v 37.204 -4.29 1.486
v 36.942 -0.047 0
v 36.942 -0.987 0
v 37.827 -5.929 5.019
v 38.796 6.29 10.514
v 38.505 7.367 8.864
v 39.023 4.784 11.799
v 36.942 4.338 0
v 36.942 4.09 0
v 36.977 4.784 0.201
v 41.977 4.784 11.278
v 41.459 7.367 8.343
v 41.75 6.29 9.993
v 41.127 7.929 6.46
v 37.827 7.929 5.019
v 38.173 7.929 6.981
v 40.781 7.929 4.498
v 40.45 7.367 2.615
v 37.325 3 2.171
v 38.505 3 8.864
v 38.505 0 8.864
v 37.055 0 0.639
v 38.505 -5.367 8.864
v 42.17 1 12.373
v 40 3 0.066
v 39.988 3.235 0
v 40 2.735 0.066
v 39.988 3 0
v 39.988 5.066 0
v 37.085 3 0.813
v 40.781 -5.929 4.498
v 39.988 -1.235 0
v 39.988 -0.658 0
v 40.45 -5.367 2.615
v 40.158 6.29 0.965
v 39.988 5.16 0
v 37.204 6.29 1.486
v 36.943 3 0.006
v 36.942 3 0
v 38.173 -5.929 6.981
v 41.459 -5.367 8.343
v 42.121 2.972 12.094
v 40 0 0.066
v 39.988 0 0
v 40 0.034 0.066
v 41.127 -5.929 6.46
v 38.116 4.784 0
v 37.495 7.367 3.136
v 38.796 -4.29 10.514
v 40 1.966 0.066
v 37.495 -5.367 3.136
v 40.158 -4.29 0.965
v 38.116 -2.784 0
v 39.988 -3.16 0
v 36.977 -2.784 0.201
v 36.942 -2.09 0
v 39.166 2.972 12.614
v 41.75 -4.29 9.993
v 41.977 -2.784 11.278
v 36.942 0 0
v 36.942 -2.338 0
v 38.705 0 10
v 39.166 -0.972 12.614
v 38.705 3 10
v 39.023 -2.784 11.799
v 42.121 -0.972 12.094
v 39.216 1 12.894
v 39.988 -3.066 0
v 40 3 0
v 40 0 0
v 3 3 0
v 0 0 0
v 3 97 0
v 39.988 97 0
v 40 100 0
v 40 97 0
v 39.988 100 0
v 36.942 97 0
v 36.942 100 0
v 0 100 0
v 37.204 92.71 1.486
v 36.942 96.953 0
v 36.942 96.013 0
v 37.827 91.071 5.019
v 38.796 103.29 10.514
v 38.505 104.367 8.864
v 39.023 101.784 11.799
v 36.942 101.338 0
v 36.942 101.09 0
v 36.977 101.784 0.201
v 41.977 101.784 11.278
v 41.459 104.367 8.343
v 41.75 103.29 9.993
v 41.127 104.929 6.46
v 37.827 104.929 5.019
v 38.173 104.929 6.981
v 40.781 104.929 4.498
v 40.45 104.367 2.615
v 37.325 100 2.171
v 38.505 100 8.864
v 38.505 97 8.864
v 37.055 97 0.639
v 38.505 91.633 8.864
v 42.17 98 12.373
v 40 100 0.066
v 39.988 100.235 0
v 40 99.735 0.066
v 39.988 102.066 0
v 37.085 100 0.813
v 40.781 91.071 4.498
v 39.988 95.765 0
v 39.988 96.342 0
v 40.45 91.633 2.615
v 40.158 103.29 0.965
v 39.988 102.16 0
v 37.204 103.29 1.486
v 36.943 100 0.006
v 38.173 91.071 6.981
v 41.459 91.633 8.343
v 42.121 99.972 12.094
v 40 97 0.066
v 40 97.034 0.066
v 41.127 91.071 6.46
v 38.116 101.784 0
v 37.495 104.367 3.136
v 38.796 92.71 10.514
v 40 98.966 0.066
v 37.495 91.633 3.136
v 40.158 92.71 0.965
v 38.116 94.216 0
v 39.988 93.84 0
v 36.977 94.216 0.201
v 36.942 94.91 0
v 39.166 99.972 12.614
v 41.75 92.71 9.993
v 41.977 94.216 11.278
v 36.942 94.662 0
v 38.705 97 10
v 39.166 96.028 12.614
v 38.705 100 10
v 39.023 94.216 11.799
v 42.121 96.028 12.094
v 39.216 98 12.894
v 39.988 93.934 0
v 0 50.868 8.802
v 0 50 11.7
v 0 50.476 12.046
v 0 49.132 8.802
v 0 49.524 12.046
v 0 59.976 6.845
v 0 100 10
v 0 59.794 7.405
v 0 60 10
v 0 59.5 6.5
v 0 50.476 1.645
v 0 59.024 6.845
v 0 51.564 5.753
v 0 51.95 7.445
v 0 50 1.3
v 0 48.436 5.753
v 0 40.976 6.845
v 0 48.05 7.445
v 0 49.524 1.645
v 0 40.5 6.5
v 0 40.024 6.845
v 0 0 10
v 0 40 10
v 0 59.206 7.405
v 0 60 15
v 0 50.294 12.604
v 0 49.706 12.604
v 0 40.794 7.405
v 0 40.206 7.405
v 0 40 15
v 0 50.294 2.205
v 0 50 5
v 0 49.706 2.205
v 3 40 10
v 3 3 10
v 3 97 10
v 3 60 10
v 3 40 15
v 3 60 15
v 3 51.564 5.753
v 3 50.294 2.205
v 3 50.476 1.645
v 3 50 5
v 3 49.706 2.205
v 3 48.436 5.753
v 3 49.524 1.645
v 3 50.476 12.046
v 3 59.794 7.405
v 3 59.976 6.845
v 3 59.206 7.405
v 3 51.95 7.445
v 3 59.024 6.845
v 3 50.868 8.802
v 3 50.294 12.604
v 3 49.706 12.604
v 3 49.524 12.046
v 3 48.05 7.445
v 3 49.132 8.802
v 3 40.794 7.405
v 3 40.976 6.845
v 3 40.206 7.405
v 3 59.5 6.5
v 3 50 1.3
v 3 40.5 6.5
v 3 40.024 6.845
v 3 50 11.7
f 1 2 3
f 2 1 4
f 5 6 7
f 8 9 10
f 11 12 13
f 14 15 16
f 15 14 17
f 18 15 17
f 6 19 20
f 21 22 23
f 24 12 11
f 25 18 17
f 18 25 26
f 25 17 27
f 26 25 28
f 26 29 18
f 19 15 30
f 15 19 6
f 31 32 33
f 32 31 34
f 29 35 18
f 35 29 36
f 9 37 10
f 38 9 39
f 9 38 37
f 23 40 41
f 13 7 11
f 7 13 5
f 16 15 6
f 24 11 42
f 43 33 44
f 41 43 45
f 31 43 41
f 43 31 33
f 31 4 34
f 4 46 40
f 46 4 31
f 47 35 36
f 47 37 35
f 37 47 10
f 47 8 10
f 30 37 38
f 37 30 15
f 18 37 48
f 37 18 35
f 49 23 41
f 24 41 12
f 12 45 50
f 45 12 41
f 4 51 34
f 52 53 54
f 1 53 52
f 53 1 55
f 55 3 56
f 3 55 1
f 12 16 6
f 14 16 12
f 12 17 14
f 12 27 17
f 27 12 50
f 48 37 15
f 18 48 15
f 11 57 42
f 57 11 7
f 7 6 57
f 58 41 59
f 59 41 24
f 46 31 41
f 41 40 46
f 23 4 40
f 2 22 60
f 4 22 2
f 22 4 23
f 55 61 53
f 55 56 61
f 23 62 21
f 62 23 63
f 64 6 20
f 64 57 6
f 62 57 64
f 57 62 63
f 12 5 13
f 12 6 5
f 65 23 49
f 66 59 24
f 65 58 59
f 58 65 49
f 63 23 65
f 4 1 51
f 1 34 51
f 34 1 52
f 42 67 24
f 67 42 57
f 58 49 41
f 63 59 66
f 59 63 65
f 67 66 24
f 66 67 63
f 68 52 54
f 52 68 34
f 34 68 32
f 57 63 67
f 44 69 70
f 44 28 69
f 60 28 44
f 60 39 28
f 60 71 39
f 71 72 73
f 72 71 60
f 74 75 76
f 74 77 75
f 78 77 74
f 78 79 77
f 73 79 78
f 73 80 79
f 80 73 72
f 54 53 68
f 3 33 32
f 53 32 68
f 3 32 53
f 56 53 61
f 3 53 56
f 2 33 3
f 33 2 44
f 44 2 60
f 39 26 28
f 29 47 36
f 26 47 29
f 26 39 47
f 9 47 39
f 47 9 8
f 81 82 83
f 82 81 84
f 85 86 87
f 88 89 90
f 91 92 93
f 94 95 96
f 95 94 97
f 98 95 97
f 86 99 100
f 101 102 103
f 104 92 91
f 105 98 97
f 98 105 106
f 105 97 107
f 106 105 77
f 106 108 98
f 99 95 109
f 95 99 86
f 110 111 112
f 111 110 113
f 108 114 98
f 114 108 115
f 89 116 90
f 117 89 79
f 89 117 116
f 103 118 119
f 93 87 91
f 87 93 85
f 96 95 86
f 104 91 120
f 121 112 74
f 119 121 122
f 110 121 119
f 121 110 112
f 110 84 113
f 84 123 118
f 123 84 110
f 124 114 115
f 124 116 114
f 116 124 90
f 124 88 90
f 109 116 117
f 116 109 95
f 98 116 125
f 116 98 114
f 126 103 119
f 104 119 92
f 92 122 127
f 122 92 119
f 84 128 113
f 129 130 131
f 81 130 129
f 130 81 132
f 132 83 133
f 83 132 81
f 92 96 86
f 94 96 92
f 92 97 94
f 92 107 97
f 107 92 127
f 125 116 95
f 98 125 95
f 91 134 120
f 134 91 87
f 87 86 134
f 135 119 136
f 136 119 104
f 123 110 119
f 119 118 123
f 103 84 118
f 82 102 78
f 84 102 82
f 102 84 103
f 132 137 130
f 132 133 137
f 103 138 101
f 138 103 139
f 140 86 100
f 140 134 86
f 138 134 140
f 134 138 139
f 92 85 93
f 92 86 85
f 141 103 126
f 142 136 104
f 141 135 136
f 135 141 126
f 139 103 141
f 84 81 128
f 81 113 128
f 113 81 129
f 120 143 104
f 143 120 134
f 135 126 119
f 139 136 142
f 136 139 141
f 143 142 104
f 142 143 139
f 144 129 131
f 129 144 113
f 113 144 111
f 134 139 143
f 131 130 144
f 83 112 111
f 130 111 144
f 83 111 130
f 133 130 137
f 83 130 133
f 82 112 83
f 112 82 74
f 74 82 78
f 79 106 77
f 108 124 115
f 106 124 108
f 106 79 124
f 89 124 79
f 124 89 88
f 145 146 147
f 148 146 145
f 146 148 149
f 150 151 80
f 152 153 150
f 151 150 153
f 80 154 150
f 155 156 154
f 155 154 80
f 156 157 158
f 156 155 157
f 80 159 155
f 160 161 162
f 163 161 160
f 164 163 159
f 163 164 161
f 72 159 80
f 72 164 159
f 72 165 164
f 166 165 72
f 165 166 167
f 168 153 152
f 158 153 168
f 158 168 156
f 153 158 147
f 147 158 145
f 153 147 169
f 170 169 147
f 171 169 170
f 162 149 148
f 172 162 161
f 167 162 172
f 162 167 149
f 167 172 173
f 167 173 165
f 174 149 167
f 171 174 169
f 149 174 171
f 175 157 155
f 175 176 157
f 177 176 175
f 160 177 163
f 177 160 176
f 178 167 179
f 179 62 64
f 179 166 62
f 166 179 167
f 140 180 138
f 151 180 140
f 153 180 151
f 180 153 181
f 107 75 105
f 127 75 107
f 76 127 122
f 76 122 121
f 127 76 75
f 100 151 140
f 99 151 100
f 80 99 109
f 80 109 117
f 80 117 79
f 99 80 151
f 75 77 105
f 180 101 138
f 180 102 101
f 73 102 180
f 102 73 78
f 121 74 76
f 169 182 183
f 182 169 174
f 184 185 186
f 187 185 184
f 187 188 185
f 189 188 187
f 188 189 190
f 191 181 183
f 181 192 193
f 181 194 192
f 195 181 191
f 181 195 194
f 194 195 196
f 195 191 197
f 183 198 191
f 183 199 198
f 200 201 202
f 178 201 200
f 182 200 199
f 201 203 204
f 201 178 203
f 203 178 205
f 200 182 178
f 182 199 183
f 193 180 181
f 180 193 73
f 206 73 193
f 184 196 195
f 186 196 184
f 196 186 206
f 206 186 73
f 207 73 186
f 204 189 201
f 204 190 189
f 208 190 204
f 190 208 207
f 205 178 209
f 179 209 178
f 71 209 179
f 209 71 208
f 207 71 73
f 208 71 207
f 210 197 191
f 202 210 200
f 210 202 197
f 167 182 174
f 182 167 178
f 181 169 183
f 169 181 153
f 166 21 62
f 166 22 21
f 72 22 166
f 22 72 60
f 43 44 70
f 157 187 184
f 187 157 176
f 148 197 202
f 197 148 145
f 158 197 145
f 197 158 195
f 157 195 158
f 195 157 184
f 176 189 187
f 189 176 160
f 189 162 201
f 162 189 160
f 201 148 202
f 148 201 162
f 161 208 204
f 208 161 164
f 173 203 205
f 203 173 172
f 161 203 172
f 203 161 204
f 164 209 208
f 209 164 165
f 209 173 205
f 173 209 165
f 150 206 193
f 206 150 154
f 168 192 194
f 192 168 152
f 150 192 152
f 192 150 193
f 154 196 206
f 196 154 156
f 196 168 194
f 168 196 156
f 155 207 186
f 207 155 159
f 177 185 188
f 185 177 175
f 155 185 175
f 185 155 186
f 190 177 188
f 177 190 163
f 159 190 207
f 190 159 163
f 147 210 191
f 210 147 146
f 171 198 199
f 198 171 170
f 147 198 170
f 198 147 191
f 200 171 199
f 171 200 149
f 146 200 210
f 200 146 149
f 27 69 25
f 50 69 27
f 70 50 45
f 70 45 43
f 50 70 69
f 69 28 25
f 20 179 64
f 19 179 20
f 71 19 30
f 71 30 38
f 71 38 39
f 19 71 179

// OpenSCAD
cube([40,3,10]);
translate([38,1,6]) {
        difference() {
            rotate([0,100,0]) {
                cylinder(r=7,h=3);
            }
            translate([-5,-5,-8]) {
                cube([15,15,2]);
            }
         }
}
translate([0,97,0]) {
	cube([40,3,10]);
	translate([38,1,6]) {
        difference() {
            rotate([0,100,0]) {
                cylinder(r=7,h=3);
            }
            translate([-5,-5,-8]) {
                cube([15,15,2]);
            }
         }
	}
}

difference() {
    union() {
        translate([0,40,10]) {
            cube([3,20,5]);
        }
        cube([3,100,10]);        
    }
	translate([0,39,7]) {
		rotate([0,90,0]) {
			translate([0,11,-1]) {
				cylinder(r=2,h=5);
			}
			translate([0,1.5,-1]) {
				cylinder(r=0.5,h=5);
			}
			translate([0,20.5,-1]) {
				cylinder(r=0.5,h=5);
			}
			translate([5.2,11,-1]) {
				cylinder(r=0.5,h=5);
			}
			translate([-5.2,11,-1]) {
				cylinder(r=0.5,h=5);
			}
		}
	}
}
